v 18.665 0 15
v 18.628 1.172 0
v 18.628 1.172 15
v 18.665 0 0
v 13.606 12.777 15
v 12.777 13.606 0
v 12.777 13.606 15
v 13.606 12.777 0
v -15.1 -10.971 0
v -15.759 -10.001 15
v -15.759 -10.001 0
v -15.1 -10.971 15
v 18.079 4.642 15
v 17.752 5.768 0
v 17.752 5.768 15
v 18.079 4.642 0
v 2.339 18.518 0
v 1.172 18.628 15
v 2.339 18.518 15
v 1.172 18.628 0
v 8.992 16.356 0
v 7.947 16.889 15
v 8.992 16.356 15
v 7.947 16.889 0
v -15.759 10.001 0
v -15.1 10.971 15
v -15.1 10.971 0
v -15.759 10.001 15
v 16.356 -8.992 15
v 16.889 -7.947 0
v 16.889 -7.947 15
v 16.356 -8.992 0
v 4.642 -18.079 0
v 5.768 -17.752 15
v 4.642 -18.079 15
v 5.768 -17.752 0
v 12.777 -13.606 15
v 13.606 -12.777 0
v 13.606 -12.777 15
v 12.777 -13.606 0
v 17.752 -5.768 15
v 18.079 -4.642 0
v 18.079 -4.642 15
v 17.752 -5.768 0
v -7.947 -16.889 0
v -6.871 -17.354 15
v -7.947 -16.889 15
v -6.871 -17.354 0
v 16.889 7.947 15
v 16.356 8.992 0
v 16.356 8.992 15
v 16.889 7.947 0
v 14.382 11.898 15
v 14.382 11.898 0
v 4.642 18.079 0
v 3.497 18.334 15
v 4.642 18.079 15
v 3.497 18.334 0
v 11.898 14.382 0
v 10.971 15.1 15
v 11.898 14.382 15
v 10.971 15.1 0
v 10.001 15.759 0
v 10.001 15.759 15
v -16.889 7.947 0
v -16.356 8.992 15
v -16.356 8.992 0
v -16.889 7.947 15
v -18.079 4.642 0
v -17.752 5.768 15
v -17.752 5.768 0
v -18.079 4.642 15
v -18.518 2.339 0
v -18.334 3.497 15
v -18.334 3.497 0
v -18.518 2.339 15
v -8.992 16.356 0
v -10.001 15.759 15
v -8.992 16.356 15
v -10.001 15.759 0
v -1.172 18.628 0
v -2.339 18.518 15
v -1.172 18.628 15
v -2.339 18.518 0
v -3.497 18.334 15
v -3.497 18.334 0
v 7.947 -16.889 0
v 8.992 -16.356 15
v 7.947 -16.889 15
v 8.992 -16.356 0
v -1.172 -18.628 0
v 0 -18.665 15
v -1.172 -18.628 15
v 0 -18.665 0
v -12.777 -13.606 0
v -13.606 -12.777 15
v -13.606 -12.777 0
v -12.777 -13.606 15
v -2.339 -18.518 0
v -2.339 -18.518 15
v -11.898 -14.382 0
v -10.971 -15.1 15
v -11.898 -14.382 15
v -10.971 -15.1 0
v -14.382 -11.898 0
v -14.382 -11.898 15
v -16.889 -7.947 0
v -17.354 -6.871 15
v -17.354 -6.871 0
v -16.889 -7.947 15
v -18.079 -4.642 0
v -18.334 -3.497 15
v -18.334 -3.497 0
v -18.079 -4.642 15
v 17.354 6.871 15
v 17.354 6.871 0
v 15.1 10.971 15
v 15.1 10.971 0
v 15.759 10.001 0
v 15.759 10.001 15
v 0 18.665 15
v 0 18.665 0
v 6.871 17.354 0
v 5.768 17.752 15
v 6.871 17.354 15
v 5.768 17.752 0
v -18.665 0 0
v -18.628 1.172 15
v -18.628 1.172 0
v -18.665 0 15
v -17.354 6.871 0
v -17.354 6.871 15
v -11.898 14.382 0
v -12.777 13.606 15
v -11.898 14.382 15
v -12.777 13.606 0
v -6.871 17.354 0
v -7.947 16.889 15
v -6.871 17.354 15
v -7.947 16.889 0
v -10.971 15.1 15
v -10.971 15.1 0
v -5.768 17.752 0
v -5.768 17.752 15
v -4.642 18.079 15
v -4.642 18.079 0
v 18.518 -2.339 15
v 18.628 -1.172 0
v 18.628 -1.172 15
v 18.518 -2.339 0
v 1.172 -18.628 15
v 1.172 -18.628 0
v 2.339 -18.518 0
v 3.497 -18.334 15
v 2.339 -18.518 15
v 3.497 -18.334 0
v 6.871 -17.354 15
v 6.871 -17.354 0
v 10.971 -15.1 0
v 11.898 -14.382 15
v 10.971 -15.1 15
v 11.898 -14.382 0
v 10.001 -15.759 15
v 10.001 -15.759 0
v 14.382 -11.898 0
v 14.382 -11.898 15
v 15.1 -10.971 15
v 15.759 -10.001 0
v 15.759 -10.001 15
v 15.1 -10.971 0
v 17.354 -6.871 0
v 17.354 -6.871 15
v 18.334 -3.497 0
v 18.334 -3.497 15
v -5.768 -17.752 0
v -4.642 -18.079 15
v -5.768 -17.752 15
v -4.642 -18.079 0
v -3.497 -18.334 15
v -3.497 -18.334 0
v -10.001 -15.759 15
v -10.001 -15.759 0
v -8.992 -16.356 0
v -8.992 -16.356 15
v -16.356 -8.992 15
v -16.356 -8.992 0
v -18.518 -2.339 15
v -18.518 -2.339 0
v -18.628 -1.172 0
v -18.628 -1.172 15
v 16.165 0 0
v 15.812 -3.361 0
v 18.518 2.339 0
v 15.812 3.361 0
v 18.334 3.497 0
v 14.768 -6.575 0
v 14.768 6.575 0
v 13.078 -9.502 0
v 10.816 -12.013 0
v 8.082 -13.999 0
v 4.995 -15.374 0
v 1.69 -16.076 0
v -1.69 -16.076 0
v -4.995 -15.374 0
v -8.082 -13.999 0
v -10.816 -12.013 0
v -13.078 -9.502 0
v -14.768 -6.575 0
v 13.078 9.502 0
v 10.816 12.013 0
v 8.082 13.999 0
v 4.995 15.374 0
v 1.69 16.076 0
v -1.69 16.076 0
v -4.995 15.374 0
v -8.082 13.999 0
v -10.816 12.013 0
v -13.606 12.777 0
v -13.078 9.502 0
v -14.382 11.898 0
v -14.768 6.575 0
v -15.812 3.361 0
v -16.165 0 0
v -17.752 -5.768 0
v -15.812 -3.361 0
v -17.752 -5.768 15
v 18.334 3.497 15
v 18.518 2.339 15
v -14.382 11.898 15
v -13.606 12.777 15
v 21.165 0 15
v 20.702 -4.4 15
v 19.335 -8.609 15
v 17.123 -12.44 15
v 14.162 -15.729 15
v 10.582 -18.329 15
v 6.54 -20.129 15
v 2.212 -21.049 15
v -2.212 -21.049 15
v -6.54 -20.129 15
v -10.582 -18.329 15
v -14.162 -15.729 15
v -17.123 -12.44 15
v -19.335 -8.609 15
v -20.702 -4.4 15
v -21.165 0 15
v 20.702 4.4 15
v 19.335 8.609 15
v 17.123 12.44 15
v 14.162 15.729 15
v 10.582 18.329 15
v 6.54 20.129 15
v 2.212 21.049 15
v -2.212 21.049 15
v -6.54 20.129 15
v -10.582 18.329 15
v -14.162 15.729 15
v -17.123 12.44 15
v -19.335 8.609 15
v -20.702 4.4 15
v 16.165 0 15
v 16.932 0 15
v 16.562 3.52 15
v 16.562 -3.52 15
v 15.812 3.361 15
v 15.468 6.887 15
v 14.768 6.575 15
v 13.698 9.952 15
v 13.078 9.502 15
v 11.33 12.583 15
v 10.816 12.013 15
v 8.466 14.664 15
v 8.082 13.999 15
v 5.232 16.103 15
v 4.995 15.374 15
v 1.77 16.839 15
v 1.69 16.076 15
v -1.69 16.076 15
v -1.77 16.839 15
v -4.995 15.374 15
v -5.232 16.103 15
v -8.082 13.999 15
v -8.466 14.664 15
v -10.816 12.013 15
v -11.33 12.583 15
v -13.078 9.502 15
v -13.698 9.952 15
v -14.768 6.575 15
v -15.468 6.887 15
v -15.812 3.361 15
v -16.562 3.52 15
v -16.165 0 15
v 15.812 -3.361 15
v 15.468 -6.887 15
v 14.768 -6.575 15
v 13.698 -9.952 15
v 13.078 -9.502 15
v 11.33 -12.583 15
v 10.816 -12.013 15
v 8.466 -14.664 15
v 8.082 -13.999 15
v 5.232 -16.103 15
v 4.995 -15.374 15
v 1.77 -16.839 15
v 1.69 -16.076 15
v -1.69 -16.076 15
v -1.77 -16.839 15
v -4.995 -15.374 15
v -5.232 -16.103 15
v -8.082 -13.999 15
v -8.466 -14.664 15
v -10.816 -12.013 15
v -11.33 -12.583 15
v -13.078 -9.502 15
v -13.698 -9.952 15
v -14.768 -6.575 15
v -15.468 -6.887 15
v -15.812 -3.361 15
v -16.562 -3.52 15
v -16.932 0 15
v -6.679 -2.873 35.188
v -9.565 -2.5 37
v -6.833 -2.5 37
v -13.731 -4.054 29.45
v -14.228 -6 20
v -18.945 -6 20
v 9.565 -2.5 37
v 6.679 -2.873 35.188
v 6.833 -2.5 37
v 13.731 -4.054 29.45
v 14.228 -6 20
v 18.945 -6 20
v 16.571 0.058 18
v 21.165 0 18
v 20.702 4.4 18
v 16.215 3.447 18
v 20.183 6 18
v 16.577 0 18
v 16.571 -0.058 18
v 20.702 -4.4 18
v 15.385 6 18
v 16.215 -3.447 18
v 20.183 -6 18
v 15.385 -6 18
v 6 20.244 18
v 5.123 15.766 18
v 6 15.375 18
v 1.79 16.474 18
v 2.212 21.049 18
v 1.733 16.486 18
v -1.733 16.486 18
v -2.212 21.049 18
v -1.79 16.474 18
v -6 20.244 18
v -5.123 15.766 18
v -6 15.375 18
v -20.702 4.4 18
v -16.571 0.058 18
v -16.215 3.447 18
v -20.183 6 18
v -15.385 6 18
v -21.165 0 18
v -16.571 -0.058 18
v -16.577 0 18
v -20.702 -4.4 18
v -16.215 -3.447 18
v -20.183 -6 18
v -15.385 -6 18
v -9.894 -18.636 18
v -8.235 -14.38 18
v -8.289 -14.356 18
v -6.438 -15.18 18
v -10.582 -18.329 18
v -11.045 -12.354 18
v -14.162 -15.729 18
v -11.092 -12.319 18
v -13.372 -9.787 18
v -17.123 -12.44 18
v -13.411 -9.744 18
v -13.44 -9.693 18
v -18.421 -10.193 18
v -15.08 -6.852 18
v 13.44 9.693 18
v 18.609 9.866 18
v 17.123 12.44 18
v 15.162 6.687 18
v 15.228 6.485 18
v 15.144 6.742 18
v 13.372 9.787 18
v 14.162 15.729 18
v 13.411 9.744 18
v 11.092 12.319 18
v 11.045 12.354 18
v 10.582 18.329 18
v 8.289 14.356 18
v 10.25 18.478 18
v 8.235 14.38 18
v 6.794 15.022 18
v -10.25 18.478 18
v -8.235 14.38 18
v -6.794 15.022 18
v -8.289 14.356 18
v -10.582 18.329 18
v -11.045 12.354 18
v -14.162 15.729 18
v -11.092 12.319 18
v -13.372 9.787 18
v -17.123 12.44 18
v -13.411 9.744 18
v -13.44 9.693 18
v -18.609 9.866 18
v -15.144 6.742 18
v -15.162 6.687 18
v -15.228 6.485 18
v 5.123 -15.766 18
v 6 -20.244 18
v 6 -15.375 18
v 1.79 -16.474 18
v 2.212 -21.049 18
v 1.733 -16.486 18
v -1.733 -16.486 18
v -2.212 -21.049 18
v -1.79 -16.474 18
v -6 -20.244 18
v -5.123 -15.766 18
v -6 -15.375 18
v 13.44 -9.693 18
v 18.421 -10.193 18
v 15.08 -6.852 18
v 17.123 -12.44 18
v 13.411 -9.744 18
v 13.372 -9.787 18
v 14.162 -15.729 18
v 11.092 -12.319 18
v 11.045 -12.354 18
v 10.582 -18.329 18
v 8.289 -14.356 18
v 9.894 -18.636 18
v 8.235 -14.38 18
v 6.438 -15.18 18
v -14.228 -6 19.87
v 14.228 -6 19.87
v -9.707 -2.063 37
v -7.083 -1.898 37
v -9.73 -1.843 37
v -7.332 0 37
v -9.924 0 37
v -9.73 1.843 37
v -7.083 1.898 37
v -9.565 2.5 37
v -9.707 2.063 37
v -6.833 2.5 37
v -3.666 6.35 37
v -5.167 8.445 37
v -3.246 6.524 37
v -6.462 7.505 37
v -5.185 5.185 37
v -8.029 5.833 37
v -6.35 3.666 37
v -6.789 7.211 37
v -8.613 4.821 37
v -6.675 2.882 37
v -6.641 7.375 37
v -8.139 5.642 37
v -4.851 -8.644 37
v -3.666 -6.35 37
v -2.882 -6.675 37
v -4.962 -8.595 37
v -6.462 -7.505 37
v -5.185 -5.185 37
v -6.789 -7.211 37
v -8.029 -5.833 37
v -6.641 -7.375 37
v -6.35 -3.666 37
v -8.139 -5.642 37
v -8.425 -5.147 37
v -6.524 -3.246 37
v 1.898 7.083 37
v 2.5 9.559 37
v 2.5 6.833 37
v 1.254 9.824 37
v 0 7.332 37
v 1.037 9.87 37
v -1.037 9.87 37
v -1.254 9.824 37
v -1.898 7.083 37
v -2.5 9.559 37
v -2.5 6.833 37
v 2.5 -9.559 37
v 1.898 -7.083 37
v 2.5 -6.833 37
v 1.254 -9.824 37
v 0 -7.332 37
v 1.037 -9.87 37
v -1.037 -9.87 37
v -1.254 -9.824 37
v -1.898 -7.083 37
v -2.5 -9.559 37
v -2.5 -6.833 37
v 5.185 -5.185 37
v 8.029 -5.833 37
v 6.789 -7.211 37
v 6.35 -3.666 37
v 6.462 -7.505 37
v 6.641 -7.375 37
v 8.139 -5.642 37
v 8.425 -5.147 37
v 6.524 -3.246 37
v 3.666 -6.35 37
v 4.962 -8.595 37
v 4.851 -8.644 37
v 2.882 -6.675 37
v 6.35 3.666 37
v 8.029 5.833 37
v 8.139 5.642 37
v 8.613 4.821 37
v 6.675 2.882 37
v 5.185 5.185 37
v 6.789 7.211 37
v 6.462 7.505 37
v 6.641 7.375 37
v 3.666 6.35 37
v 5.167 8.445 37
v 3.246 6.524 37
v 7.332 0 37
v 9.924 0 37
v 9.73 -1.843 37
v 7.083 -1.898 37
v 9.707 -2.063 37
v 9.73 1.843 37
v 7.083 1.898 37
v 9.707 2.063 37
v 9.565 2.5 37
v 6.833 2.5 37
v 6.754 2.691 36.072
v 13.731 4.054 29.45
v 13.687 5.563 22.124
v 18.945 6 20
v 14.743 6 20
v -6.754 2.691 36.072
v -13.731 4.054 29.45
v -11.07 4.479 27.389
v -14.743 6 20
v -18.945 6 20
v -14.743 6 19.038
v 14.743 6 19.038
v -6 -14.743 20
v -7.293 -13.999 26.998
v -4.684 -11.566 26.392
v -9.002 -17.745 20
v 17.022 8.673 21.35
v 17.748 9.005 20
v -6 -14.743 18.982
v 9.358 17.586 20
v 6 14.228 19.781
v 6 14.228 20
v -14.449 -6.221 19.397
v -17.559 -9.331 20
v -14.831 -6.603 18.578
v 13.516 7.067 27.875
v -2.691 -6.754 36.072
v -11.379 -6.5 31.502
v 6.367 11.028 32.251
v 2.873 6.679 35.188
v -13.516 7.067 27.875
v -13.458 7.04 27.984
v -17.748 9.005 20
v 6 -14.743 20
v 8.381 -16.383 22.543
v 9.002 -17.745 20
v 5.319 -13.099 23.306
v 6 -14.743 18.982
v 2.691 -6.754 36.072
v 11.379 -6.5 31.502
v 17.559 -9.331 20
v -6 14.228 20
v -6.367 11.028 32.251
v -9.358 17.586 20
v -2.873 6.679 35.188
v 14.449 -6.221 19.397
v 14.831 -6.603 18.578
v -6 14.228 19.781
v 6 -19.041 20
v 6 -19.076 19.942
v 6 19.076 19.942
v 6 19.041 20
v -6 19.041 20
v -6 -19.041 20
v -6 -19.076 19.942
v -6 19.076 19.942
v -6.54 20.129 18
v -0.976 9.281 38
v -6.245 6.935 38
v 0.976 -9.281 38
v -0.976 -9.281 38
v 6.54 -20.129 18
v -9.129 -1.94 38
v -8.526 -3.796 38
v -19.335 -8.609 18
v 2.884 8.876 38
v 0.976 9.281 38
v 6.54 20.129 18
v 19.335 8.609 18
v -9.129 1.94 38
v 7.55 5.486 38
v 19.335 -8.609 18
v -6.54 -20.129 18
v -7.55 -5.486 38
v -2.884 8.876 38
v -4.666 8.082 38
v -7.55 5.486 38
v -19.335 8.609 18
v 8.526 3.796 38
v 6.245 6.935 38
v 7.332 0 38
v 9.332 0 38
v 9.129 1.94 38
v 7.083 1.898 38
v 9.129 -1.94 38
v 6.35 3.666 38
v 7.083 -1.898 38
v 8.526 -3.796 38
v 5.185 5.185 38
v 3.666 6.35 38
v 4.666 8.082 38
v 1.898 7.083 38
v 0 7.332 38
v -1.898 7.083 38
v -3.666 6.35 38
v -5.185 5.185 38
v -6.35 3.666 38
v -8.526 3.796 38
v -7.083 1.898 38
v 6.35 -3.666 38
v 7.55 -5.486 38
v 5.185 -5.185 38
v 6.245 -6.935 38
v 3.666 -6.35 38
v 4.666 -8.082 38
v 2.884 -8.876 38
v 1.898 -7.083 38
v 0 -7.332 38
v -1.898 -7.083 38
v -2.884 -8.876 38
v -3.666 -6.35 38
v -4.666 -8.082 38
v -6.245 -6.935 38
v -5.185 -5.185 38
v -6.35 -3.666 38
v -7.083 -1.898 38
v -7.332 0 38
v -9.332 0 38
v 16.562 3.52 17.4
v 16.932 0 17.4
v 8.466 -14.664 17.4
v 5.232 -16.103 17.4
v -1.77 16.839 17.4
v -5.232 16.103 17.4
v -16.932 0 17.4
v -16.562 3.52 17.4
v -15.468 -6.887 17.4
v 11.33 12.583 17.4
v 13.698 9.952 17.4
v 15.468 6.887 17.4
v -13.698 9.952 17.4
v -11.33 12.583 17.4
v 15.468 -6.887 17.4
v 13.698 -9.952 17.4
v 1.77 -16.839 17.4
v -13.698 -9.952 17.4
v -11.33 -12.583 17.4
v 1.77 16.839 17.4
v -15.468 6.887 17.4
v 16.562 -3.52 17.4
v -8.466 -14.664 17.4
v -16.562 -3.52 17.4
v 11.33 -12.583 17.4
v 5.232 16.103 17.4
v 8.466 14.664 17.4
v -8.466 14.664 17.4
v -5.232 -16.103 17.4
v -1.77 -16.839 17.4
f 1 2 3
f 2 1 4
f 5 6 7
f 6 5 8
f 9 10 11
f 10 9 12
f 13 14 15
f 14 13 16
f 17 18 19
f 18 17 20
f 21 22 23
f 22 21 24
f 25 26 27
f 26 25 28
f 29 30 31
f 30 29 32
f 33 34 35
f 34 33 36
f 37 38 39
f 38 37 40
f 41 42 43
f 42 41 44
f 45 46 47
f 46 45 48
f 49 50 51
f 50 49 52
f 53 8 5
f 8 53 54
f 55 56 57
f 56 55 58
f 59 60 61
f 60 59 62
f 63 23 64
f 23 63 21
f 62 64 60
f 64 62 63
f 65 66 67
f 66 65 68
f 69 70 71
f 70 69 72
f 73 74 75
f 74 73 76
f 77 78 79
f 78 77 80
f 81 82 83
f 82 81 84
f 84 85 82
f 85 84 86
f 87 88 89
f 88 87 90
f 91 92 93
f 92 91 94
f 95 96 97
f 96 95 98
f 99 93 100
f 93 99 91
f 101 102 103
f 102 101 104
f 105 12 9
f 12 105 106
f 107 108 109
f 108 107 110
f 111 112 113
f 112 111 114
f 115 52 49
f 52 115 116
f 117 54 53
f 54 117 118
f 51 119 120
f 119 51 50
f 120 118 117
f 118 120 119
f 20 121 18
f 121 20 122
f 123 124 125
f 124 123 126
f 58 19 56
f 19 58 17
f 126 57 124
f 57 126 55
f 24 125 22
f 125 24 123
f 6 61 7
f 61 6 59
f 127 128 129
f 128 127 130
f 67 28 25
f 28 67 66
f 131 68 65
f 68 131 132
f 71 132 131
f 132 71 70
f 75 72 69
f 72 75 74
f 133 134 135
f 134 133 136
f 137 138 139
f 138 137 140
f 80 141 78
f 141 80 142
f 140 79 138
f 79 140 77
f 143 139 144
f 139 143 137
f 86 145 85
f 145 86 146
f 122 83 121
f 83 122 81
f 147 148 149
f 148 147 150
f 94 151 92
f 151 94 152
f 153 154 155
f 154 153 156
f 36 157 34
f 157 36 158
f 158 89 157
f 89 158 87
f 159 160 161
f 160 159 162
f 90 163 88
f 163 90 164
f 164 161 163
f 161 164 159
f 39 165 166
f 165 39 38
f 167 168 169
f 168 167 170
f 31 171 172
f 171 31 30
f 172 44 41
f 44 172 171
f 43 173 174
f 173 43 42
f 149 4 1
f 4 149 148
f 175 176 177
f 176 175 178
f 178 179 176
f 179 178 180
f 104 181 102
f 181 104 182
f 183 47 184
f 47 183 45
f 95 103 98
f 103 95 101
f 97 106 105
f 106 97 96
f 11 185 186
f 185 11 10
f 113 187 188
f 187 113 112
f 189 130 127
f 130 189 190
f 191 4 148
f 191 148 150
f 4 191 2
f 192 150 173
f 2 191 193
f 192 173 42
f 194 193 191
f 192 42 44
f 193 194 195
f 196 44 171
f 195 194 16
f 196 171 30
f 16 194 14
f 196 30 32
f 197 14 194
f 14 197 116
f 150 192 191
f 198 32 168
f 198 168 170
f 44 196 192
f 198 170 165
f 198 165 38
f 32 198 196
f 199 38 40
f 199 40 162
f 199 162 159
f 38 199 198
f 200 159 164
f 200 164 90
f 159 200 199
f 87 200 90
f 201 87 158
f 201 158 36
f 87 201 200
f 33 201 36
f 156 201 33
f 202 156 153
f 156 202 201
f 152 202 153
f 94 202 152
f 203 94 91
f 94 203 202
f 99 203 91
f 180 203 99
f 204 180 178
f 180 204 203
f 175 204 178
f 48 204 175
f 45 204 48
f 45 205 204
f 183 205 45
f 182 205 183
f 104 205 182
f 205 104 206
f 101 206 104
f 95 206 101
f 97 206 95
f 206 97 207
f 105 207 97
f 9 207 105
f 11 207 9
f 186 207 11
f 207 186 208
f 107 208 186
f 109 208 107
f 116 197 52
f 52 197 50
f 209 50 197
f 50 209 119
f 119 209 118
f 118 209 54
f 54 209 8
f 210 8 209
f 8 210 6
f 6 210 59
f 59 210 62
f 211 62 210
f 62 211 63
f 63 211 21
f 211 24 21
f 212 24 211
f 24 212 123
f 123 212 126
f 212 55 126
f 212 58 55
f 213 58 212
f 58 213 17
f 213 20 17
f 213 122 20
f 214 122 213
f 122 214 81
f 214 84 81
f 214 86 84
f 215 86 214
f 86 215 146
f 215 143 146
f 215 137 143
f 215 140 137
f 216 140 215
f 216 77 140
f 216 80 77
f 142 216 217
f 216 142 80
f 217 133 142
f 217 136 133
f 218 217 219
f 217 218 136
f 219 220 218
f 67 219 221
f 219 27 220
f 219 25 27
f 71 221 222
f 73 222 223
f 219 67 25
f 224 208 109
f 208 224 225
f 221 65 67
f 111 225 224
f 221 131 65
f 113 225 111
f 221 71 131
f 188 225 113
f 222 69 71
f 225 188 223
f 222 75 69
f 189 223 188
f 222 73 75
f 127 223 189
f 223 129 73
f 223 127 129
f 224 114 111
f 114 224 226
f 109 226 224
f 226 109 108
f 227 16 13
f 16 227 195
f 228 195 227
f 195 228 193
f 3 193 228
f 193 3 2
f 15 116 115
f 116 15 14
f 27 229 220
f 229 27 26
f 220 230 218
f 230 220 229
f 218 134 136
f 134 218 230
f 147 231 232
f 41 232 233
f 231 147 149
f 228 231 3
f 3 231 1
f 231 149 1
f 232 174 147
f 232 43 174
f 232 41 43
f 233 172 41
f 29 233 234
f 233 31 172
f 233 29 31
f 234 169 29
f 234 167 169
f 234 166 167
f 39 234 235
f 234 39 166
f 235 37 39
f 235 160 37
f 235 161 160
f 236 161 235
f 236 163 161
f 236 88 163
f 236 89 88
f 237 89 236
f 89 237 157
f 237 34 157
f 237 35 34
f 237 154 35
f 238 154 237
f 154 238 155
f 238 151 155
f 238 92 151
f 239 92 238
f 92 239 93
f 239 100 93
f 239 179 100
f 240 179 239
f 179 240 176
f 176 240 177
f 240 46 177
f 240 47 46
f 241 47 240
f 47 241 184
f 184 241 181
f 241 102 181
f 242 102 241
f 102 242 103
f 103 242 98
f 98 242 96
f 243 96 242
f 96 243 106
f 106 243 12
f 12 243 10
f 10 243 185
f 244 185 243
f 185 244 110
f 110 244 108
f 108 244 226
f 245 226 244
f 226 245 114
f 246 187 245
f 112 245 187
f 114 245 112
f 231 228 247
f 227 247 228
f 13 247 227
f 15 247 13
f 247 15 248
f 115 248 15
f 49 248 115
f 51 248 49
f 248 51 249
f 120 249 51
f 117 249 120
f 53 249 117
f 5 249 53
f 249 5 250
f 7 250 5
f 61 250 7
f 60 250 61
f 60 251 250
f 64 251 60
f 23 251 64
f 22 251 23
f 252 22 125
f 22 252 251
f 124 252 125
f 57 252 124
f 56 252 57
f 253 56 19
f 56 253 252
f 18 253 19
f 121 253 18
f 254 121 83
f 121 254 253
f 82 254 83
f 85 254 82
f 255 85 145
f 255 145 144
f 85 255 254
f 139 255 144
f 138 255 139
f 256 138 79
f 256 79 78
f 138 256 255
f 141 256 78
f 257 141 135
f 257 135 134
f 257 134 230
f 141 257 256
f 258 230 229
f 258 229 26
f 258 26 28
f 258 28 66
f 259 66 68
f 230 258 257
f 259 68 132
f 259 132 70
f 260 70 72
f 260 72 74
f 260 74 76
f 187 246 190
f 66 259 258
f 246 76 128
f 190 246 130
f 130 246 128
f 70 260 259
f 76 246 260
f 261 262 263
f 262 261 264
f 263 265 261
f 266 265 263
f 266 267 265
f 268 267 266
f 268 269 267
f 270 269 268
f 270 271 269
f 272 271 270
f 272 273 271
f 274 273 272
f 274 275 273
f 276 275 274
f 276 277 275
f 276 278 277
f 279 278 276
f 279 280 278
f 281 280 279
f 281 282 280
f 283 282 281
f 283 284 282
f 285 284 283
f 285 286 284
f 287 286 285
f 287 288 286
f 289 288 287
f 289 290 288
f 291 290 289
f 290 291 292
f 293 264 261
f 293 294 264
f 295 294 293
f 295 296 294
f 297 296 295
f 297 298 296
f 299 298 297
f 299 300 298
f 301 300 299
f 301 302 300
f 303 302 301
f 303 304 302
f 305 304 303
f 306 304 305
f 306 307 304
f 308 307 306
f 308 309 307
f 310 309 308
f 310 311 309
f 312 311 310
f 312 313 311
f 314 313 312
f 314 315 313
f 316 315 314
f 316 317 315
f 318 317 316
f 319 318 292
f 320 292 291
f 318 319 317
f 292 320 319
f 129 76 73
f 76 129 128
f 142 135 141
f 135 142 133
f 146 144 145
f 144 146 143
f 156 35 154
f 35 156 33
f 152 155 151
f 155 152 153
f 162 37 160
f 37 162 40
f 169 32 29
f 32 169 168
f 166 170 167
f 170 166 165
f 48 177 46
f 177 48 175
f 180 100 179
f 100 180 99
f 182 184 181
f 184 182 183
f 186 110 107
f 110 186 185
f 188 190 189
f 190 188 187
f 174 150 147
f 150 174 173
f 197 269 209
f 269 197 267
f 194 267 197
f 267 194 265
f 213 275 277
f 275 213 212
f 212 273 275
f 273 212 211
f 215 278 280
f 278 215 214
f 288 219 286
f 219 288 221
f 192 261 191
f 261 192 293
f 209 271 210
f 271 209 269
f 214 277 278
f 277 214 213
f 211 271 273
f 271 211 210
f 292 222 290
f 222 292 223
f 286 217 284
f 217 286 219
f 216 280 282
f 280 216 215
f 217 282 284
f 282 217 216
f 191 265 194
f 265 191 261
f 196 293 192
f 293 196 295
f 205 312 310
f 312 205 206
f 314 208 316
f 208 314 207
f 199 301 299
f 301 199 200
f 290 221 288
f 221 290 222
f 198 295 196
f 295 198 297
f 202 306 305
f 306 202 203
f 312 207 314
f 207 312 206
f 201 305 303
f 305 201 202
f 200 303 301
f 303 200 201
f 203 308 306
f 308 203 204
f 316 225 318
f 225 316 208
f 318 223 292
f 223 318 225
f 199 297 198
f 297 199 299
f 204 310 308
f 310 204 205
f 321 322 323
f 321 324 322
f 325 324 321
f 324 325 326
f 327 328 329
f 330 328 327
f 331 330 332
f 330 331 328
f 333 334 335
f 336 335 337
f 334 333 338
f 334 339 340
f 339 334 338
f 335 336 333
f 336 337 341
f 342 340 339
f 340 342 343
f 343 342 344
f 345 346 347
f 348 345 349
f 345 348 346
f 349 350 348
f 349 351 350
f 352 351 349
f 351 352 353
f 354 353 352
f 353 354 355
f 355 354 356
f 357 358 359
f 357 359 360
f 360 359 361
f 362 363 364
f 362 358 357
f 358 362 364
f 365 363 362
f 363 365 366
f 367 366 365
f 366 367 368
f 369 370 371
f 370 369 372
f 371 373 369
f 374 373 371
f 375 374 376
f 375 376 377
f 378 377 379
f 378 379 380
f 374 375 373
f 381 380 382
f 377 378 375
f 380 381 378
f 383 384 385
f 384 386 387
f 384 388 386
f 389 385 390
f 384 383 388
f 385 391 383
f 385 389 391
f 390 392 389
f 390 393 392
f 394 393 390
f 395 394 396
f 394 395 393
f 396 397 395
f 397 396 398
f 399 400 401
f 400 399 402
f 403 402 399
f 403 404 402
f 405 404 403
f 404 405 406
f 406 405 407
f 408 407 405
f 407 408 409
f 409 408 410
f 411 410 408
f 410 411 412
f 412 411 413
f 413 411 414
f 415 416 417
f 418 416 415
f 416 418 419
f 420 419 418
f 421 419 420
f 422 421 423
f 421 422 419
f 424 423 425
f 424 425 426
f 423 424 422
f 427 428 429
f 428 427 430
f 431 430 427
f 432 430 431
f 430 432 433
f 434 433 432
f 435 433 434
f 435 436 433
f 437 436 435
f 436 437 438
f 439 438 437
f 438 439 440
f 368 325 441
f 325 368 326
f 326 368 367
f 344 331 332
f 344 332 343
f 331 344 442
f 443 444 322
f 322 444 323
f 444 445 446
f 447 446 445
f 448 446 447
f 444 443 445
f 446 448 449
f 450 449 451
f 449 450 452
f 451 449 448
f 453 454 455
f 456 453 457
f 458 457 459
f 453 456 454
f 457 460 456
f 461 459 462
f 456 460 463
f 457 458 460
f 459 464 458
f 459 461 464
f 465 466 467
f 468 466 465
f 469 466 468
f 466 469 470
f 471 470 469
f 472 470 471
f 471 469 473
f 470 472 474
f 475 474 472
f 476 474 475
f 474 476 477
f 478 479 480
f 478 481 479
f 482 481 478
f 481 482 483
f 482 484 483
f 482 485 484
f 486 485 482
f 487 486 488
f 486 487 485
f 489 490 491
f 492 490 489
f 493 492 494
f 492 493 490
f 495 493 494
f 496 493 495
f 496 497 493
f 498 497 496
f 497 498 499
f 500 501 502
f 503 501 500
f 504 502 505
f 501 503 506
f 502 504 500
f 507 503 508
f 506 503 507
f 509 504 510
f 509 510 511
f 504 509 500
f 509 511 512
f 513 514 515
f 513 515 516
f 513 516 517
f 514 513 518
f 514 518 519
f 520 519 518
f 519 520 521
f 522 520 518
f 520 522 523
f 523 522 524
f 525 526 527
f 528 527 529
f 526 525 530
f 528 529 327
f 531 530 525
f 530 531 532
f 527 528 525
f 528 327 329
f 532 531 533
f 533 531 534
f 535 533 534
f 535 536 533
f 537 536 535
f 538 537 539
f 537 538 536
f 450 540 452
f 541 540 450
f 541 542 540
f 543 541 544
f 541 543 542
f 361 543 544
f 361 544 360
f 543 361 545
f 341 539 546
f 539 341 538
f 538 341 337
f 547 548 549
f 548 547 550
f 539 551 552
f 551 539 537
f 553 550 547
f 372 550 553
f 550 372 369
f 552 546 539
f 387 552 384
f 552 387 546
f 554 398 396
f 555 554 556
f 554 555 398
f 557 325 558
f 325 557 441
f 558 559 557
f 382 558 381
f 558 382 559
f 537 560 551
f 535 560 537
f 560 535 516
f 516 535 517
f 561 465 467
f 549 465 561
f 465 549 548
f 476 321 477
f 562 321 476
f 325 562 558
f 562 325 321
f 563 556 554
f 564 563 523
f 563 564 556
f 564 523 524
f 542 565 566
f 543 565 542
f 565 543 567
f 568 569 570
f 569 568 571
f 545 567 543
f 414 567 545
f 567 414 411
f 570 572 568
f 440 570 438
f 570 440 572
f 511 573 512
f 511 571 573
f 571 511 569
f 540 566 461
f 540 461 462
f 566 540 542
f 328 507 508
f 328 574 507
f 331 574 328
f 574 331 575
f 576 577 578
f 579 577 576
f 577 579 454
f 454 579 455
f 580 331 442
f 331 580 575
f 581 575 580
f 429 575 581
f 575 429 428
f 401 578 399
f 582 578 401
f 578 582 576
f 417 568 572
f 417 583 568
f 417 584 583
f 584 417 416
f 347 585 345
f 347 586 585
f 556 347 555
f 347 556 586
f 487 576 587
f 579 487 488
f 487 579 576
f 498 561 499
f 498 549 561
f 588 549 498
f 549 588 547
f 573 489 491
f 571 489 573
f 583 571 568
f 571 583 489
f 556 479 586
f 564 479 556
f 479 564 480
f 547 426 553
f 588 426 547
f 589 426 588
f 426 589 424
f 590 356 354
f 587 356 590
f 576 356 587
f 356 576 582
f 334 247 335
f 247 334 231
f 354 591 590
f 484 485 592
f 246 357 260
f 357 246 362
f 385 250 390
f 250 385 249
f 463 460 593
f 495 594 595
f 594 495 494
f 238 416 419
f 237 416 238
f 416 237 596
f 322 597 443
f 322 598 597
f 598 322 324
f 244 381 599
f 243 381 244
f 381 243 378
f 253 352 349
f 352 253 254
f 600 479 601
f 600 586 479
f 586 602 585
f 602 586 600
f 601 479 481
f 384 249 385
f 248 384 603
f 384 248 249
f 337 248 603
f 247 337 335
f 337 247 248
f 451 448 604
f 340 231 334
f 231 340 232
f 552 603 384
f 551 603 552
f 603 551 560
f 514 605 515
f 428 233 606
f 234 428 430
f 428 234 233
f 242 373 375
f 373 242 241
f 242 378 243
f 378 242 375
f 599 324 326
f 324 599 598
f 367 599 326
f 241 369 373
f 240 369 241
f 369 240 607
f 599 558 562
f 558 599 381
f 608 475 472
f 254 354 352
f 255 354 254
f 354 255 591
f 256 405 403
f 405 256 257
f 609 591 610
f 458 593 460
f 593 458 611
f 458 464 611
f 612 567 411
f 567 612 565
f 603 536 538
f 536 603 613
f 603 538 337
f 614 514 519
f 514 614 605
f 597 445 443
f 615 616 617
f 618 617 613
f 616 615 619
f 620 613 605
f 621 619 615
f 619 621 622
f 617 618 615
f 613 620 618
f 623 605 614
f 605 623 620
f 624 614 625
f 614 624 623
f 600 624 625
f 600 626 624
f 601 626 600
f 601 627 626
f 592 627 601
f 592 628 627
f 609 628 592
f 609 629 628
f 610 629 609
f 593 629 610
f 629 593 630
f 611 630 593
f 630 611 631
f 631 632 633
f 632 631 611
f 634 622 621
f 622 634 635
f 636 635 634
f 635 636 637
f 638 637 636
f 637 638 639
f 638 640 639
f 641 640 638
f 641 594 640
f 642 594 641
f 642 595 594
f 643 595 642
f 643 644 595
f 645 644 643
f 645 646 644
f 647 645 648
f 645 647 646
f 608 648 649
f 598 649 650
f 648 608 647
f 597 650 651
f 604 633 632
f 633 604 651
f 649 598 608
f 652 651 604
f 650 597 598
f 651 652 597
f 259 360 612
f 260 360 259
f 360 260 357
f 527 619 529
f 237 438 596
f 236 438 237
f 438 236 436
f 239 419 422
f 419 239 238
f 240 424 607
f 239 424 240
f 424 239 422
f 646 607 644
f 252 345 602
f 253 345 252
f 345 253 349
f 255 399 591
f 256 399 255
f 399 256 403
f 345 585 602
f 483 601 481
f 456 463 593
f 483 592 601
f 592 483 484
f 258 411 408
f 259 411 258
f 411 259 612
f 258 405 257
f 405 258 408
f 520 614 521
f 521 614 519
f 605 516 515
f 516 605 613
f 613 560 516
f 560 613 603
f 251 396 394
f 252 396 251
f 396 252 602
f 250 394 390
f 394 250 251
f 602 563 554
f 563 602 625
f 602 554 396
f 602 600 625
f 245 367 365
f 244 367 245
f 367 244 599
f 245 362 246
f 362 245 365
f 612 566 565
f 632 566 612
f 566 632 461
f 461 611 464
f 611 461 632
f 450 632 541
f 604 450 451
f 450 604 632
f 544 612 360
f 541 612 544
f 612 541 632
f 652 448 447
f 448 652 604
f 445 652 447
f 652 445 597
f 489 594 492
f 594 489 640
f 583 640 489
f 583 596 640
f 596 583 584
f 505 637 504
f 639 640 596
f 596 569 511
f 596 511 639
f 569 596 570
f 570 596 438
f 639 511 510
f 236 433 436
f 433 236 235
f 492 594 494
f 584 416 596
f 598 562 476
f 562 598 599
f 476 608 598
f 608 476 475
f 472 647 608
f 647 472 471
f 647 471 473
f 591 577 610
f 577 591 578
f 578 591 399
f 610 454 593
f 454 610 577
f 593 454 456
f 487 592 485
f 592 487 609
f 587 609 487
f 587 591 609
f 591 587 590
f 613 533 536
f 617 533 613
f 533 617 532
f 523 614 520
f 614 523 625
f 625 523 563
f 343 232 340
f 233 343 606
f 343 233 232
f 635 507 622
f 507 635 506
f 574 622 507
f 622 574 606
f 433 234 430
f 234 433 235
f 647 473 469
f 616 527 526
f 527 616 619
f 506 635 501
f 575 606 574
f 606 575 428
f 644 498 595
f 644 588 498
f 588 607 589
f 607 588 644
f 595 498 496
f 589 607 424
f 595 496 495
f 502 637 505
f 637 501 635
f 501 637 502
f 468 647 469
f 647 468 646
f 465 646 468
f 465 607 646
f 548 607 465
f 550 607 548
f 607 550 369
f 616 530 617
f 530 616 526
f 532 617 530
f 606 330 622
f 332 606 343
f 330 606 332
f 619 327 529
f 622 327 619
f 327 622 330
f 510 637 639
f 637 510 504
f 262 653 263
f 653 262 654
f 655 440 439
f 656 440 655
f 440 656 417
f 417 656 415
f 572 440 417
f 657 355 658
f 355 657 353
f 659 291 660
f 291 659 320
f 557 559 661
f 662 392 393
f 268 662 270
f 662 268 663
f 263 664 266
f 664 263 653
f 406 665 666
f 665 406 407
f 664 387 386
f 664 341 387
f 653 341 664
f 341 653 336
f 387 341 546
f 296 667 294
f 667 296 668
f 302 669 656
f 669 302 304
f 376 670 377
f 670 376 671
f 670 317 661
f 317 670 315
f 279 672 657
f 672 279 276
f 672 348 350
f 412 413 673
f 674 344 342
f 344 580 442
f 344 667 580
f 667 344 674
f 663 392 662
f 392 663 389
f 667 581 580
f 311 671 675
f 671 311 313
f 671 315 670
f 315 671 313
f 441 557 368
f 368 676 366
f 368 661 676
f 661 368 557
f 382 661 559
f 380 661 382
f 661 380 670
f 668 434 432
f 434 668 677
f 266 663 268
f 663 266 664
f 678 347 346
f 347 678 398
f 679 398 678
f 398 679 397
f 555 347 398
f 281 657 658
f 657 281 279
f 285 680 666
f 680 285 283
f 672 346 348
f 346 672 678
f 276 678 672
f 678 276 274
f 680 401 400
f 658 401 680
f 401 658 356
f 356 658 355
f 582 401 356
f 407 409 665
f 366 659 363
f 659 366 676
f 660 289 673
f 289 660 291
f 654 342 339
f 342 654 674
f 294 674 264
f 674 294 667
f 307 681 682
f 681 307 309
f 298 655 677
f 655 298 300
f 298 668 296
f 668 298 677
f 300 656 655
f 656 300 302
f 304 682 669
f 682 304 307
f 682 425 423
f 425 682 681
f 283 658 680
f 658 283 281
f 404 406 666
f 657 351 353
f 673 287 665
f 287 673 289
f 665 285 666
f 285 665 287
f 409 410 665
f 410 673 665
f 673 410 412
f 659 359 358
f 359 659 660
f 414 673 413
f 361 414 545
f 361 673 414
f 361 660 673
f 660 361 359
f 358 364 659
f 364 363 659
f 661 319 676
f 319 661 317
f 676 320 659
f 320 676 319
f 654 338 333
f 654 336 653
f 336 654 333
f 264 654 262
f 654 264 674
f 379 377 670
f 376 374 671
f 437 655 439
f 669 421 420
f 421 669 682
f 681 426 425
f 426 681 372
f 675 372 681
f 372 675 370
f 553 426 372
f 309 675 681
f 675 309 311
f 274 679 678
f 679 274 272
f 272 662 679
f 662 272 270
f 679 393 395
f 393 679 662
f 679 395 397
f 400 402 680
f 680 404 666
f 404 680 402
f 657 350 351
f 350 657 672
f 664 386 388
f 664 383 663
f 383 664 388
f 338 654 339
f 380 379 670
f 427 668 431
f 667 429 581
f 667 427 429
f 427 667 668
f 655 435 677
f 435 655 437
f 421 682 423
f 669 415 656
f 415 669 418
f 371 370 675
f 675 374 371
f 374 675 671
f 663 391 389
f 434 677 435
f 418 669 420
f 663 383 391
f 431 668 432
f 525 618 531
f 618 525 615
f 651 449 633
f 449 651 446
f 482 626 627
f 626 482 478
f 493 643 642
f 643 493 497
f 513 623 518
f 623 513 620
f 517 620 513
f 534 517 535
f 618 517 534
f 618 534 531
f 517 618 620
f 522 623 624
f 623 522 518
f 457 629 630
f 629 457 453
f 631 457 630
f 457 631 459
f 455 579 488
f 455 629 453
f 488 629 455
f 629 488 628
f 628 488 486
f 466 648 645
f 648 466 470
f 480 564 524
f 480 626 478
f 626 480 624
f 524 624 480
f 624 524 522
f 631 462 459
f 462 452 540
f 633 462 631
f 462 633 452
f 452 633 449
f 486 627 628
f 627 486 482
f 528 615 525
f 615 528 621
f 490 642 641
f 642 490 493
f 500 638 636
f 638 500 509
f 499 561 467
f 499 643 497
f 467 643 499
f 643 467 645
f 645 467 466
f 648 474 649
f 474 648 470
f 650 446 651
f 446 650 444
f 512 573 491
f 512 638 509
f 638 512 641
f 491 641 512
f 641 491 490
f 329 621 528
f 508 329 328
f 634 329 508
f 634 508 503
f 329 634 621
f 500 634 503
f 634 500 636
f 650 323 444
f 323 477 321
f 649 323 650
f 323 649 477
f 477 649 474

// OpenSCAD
hole = 37.33;




plug();
translate([0, 0, 15]) {
    top();
}


module plug() {
    difference() {
        cylinder(r=hole/2, h=15, $fn=100);
        cylinder(r=(hole/2) - 2.5, h=15);
    }
}

module top() {
    difference() {
        topShell();
        scale([.8, .8, .8]) {
            topShell();
        }
        translate([-50, -3, 3]) {
            slices();
        }
        #cylinder(r=(hole/4)-2, h=40);
    }
}

module topShell() {
    hull() {
        difference() {
            cylinder(r=(hole/2) + 2.5, h=3);
            cylinder(r=(hole/2), h=15);
        }
        translate([0, 0, 20]) {
                cylinder(r=(hole/4) , h=3);
        }
    }
}

module slices() {
    slice();
    translate([0, -51.5, 0]) 
        rotate([0, 0, 45]) {
            slice();
        }
    translate([0, 48.5, 0]) 
        rotate([0, 0, -45]) {
            slice();
        }
    translate([53, -50, 0]) 
        rotate([0, 0, 90]) {
            slice();
        }
}

module slice() {
    hull() {
        translate([0, -3, 0])
            cube(size=[100, 12, 2]);
        translate([0, 0.5, 18]) 
            cube(size=[100, 5, 1]);
    }
}
